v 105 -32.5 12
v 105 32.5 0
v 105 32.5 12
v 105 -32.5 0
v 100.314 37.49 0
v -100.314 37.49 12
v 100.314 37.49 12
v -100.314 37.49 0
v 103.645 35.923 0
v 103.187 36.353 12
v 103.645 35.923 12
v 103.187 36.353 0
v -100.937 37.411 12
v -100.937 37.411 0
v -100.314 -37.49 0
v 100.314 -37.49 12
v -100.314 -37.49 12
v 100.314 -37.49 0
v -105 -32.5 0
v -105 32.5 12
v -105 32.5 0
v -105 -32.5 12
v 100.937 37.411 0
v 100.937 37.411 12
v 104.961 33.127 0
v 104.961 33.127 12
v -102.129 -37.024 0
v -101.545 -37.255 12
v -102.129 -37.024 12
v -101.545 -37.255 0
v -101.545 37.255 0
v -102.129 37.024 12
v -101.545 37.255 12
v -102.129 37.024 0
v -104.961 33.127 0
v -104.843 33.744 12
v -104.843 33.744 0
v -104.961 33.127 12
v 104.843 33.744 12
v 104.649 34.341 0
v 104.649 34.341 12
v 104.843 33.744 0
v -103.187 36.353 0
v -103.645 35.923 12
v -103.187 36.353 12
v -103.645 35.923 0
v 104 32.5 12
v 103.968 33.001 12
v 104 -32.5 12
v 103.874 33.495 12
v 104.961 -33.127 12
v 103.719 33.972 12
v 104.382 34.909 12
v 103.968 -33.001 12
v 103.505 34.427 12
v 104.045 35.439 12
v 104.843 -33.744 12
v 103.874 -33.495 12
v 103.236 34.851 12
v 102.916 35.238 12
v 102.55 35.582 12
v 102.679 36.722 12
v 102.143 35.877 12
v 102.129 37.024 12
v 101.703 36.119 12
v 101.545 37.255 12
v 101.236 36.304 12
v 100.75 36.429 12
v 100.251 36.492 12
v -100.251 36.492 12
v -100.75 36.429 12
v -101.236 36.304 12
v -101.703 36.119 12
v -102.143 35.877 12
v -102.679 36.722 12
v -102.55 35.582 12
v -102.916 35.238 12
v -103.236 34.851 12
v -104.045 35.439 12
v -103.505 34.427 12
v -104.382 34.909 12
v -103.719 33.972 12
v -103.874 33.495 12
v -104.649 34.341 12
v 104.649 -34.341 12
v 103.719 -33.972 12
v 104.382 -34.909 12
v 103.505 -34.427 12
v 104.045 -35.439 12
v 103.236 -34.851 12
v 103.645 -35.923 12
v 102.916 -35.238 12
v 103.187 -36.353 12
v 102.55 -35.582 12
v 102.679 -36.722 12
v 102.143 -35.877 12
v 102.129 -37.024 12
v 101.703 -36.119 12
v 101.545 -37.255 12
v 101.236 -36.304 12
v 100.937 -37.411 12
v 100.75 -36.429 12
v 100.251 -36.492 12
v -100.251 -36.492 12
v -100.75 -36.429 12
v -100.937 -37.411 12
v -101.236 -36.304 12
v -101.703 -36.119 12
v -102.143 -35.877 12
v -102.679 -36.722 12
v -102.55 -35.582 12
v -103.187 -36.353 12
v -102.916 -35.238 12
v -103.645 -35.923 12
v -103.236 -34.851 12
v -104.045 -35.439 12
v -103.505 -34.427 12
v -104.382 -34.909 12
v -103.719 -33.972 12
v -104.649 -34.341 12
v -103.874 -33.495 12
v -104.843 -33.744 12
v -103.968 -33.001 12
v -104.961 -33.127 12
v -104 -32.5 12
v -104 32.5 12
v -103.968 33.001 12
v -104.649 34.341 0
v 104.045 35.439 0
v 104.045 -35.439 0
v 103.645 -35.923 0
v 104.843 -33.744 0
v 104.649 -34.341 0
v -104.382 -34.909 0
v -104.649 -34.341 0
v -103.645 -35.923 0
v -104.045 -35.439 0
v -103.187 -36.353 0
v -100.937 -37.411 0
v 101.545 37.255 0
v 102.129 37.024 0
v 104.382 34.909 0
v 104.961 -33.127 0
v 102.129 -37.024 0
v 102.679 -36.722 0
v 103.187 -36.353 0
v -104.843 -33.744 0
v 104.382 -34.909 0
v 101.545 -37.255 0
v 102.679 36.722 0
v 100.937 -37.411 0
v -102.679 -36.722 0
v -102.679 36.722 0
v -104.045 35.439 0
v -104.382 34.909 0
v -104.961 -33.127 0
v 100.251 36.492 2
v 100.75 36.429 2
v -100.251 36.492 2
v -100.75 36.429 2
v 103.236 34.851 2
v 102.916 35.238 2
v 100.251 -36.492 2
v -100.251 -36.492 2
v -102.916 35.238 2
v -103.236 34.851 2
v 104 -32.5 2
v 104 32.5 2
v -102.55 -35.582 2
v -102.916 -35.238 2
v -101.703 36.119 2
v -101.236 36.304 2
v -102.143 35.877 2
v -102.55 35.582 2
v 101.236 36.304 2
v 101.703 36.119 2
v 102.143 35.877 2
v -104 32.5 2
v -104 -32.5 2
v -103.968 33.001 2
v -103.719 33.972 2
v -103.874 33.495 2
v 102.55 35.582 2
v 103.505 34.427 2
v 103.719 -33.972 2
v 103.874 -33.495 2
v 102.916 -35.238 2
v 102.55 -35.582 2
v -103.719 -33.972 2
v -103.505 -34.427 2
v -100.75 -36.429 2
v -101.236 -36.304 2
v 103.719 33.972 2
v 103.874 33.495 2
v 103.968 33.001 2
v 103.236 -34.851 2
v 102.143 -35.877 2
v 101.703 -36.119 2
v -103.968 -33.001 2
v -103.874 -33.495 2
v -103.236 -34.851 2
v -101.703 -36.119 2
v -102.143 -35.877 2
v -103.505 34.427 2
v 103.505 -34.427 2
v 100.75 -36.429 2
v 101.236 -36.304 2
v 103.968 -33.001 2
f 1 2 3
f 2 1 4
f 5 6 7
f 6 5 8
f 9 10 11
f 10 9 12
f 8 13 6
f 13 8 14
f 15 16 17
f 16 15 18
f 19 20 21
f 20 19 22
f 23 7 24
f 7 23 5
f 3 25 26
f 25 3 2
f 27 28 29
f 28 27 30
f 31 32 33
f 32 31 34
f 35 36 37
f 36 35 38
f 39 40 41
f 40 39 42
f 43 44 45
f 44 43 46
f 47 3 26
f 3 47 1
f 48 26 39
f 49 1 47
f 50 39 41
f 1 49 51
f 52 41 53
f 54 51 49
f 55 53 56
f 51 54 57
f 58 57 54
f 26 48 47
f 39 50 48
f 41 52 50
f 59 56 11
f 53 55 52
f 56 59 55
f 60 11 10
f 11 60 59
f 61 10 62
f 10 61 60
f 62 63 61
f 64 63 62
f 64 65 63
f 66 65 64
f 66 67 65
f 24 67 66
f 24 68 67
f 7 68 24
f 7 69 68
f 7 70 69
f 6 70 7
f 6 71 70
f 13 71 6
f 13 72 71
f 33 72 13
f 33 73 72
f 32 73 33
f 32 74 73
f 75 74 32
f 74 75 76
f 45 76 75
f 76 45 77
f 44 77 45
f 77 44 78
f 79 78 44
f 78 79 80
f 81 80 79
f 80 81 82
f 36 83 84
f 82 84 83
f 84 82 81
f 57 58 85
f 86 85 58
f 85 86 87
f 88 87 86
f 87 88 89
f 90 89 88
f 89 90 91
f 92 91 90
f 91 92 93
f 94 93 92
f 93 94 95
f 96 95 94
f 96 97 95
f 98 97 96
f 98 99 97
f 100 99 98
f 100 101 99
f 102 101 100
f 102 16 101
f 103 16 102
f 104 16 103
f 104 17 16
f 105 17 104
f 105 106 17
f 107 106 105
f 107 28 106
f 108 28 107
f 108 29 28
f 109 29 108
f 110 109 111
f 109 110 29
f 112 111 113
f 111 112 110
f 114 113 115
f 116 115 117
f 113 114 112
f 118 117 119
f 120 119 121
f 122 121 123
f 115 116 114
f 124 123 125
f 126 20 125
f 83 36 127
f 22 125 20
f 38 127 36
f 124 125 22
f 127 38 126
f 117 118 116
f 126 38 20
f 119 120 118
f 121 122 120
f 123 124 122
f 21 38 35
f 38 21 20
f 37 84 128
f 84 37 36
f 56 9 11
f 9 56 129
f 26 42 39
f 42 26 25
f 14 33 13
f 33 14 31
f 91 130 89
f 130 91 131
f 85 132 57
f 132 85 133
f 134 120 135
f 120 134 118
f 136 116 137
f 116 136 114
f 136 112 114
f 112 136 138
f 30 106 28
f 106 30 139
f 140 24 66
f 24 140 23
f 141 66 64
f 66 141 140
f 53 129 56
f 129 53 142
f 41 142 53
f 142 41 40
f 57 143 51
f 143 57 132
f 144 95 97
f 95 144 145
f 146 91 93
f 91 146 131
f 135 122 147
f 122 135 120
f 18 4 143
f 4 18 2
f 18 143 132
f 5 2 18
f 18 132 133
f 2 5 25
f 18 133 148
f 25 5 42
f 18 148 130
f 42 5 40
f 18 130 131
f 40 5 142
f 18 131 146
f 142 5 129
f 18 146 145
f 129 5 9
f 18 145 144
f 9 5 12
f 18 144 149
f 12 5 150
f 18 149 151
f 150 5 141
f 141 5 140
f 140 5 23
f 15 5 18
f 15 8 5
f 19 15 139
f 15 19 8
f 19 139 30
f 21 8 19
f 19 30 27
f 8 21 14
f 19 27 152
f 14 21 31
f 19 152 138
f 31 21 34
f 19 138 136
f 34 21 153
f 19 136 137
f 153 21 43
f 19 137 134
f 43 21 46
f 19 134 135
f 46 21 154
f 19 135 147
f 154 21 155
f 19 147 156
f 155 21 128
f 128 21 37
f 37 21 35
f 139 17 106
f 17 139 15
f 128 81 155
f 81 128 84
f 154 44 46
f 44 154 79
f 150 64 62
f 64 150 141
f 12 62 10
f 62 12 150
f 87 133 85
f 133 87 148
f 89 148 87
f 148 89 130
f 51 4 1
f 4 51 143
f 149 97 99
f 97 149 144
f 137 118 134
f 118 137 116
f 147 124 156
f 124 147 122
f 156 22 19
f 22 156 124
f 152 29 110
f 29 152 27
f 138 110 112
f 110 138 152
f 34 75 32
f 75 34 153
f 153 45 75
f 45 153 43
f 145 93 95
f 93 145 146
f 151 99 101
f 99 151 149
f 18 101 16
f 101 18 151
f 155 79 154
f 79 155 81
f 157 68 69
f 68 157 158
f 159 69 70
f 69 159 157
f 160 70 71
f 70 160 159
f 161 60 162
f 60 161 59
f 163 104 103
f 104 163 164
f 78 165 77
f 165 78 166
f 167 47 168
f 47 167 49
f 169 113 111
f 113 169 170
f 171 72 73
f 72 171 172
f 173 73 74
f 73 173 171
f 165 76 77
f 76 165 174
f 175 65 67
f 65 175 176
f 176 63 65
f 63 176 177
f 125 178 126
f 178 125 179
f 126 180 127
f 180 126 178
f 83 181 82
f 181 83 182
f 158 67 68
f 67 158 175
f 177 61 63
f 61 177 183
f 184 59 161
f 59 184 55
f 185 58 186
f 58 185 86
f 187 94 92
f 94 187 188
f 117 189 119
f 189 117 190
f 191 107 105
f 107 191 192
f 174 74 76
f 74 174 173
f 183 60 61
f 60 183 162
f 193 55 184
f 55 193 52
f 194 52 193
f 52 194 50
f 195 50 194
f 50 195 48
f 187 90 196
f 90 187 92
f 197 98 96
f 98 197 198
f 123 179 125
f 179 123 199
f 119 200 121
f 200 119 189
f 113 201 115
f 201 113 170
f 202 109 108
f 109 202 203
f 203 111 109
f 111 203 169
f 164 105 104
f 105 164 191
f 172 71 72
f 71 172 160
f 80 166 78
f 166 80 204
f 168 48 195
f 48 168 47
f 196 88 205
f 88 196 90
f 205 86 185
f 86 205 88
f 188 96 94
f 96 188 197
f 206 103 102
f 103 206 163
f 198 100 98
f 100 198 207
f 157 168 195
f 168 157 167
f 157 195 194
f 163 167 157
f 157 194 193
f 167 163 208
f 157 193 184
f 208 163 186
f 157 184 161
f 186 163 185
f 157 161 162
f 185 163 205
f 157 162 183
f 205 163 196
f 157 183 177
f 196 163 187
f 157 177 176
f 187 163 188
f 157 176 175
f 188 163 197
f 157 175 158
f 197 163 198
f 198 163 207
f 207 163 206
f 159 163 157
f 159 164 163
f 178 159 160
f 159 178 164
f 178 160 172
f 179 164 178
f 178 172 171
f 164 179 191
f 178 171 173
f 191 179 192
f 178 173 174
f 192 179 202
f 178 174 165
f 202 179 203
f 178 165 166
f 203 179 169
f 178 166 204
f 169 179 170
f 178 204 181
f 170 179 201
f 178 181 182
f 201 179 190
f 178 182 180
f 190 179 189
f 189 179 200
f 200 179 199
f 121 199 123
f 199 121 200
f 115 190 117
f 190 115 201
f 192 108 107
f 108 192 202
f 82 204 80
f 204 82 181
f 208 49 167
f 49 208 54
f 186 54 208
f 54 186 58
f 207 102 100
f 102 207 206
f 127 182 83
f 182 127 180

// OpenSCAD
$fn = 50;


difference() {
	union() {
		hull() {
			translate(v = [-100.0000000000, 32.5000000000, 0]) {
				cylinder(h = 12, r = 5);
			}
			translate(v = [100.0000000000, 32.5000000000, 0]) {
				cylinder(h = 12, r = 5);
			}
			translate(v = [-100.0000000000, -32.5000000000, 0]) {
				cylinder(h = 12, r = 5);
			}
			translate(v = [100.0000000000, -32.5000000000, 0]) {
				cylinder(h = 12, r = 5);
			}
		}
	}
	union() {
		translate(v = [0, 0, 2]) {
			hull() {
				translate(v = [-100.0000000000, 32.5000000000, 0]) {
					cylinder(h = 10, r = 4);
				}
				translate(v = [100.0000000000, 32.5000000000, 0]) {
					cylinder(h = 10, r = 4);
				}
				translate(v = [-100.0000000000, -32.5000000000, 0]) {
					cylinder(h = 10, r = 4);
				}
				translate(v = [100.0000000000, -32.5000000000, 0]) {
					cylinder(h = 10, r = 4);
				}
			}
		}
	}
}
